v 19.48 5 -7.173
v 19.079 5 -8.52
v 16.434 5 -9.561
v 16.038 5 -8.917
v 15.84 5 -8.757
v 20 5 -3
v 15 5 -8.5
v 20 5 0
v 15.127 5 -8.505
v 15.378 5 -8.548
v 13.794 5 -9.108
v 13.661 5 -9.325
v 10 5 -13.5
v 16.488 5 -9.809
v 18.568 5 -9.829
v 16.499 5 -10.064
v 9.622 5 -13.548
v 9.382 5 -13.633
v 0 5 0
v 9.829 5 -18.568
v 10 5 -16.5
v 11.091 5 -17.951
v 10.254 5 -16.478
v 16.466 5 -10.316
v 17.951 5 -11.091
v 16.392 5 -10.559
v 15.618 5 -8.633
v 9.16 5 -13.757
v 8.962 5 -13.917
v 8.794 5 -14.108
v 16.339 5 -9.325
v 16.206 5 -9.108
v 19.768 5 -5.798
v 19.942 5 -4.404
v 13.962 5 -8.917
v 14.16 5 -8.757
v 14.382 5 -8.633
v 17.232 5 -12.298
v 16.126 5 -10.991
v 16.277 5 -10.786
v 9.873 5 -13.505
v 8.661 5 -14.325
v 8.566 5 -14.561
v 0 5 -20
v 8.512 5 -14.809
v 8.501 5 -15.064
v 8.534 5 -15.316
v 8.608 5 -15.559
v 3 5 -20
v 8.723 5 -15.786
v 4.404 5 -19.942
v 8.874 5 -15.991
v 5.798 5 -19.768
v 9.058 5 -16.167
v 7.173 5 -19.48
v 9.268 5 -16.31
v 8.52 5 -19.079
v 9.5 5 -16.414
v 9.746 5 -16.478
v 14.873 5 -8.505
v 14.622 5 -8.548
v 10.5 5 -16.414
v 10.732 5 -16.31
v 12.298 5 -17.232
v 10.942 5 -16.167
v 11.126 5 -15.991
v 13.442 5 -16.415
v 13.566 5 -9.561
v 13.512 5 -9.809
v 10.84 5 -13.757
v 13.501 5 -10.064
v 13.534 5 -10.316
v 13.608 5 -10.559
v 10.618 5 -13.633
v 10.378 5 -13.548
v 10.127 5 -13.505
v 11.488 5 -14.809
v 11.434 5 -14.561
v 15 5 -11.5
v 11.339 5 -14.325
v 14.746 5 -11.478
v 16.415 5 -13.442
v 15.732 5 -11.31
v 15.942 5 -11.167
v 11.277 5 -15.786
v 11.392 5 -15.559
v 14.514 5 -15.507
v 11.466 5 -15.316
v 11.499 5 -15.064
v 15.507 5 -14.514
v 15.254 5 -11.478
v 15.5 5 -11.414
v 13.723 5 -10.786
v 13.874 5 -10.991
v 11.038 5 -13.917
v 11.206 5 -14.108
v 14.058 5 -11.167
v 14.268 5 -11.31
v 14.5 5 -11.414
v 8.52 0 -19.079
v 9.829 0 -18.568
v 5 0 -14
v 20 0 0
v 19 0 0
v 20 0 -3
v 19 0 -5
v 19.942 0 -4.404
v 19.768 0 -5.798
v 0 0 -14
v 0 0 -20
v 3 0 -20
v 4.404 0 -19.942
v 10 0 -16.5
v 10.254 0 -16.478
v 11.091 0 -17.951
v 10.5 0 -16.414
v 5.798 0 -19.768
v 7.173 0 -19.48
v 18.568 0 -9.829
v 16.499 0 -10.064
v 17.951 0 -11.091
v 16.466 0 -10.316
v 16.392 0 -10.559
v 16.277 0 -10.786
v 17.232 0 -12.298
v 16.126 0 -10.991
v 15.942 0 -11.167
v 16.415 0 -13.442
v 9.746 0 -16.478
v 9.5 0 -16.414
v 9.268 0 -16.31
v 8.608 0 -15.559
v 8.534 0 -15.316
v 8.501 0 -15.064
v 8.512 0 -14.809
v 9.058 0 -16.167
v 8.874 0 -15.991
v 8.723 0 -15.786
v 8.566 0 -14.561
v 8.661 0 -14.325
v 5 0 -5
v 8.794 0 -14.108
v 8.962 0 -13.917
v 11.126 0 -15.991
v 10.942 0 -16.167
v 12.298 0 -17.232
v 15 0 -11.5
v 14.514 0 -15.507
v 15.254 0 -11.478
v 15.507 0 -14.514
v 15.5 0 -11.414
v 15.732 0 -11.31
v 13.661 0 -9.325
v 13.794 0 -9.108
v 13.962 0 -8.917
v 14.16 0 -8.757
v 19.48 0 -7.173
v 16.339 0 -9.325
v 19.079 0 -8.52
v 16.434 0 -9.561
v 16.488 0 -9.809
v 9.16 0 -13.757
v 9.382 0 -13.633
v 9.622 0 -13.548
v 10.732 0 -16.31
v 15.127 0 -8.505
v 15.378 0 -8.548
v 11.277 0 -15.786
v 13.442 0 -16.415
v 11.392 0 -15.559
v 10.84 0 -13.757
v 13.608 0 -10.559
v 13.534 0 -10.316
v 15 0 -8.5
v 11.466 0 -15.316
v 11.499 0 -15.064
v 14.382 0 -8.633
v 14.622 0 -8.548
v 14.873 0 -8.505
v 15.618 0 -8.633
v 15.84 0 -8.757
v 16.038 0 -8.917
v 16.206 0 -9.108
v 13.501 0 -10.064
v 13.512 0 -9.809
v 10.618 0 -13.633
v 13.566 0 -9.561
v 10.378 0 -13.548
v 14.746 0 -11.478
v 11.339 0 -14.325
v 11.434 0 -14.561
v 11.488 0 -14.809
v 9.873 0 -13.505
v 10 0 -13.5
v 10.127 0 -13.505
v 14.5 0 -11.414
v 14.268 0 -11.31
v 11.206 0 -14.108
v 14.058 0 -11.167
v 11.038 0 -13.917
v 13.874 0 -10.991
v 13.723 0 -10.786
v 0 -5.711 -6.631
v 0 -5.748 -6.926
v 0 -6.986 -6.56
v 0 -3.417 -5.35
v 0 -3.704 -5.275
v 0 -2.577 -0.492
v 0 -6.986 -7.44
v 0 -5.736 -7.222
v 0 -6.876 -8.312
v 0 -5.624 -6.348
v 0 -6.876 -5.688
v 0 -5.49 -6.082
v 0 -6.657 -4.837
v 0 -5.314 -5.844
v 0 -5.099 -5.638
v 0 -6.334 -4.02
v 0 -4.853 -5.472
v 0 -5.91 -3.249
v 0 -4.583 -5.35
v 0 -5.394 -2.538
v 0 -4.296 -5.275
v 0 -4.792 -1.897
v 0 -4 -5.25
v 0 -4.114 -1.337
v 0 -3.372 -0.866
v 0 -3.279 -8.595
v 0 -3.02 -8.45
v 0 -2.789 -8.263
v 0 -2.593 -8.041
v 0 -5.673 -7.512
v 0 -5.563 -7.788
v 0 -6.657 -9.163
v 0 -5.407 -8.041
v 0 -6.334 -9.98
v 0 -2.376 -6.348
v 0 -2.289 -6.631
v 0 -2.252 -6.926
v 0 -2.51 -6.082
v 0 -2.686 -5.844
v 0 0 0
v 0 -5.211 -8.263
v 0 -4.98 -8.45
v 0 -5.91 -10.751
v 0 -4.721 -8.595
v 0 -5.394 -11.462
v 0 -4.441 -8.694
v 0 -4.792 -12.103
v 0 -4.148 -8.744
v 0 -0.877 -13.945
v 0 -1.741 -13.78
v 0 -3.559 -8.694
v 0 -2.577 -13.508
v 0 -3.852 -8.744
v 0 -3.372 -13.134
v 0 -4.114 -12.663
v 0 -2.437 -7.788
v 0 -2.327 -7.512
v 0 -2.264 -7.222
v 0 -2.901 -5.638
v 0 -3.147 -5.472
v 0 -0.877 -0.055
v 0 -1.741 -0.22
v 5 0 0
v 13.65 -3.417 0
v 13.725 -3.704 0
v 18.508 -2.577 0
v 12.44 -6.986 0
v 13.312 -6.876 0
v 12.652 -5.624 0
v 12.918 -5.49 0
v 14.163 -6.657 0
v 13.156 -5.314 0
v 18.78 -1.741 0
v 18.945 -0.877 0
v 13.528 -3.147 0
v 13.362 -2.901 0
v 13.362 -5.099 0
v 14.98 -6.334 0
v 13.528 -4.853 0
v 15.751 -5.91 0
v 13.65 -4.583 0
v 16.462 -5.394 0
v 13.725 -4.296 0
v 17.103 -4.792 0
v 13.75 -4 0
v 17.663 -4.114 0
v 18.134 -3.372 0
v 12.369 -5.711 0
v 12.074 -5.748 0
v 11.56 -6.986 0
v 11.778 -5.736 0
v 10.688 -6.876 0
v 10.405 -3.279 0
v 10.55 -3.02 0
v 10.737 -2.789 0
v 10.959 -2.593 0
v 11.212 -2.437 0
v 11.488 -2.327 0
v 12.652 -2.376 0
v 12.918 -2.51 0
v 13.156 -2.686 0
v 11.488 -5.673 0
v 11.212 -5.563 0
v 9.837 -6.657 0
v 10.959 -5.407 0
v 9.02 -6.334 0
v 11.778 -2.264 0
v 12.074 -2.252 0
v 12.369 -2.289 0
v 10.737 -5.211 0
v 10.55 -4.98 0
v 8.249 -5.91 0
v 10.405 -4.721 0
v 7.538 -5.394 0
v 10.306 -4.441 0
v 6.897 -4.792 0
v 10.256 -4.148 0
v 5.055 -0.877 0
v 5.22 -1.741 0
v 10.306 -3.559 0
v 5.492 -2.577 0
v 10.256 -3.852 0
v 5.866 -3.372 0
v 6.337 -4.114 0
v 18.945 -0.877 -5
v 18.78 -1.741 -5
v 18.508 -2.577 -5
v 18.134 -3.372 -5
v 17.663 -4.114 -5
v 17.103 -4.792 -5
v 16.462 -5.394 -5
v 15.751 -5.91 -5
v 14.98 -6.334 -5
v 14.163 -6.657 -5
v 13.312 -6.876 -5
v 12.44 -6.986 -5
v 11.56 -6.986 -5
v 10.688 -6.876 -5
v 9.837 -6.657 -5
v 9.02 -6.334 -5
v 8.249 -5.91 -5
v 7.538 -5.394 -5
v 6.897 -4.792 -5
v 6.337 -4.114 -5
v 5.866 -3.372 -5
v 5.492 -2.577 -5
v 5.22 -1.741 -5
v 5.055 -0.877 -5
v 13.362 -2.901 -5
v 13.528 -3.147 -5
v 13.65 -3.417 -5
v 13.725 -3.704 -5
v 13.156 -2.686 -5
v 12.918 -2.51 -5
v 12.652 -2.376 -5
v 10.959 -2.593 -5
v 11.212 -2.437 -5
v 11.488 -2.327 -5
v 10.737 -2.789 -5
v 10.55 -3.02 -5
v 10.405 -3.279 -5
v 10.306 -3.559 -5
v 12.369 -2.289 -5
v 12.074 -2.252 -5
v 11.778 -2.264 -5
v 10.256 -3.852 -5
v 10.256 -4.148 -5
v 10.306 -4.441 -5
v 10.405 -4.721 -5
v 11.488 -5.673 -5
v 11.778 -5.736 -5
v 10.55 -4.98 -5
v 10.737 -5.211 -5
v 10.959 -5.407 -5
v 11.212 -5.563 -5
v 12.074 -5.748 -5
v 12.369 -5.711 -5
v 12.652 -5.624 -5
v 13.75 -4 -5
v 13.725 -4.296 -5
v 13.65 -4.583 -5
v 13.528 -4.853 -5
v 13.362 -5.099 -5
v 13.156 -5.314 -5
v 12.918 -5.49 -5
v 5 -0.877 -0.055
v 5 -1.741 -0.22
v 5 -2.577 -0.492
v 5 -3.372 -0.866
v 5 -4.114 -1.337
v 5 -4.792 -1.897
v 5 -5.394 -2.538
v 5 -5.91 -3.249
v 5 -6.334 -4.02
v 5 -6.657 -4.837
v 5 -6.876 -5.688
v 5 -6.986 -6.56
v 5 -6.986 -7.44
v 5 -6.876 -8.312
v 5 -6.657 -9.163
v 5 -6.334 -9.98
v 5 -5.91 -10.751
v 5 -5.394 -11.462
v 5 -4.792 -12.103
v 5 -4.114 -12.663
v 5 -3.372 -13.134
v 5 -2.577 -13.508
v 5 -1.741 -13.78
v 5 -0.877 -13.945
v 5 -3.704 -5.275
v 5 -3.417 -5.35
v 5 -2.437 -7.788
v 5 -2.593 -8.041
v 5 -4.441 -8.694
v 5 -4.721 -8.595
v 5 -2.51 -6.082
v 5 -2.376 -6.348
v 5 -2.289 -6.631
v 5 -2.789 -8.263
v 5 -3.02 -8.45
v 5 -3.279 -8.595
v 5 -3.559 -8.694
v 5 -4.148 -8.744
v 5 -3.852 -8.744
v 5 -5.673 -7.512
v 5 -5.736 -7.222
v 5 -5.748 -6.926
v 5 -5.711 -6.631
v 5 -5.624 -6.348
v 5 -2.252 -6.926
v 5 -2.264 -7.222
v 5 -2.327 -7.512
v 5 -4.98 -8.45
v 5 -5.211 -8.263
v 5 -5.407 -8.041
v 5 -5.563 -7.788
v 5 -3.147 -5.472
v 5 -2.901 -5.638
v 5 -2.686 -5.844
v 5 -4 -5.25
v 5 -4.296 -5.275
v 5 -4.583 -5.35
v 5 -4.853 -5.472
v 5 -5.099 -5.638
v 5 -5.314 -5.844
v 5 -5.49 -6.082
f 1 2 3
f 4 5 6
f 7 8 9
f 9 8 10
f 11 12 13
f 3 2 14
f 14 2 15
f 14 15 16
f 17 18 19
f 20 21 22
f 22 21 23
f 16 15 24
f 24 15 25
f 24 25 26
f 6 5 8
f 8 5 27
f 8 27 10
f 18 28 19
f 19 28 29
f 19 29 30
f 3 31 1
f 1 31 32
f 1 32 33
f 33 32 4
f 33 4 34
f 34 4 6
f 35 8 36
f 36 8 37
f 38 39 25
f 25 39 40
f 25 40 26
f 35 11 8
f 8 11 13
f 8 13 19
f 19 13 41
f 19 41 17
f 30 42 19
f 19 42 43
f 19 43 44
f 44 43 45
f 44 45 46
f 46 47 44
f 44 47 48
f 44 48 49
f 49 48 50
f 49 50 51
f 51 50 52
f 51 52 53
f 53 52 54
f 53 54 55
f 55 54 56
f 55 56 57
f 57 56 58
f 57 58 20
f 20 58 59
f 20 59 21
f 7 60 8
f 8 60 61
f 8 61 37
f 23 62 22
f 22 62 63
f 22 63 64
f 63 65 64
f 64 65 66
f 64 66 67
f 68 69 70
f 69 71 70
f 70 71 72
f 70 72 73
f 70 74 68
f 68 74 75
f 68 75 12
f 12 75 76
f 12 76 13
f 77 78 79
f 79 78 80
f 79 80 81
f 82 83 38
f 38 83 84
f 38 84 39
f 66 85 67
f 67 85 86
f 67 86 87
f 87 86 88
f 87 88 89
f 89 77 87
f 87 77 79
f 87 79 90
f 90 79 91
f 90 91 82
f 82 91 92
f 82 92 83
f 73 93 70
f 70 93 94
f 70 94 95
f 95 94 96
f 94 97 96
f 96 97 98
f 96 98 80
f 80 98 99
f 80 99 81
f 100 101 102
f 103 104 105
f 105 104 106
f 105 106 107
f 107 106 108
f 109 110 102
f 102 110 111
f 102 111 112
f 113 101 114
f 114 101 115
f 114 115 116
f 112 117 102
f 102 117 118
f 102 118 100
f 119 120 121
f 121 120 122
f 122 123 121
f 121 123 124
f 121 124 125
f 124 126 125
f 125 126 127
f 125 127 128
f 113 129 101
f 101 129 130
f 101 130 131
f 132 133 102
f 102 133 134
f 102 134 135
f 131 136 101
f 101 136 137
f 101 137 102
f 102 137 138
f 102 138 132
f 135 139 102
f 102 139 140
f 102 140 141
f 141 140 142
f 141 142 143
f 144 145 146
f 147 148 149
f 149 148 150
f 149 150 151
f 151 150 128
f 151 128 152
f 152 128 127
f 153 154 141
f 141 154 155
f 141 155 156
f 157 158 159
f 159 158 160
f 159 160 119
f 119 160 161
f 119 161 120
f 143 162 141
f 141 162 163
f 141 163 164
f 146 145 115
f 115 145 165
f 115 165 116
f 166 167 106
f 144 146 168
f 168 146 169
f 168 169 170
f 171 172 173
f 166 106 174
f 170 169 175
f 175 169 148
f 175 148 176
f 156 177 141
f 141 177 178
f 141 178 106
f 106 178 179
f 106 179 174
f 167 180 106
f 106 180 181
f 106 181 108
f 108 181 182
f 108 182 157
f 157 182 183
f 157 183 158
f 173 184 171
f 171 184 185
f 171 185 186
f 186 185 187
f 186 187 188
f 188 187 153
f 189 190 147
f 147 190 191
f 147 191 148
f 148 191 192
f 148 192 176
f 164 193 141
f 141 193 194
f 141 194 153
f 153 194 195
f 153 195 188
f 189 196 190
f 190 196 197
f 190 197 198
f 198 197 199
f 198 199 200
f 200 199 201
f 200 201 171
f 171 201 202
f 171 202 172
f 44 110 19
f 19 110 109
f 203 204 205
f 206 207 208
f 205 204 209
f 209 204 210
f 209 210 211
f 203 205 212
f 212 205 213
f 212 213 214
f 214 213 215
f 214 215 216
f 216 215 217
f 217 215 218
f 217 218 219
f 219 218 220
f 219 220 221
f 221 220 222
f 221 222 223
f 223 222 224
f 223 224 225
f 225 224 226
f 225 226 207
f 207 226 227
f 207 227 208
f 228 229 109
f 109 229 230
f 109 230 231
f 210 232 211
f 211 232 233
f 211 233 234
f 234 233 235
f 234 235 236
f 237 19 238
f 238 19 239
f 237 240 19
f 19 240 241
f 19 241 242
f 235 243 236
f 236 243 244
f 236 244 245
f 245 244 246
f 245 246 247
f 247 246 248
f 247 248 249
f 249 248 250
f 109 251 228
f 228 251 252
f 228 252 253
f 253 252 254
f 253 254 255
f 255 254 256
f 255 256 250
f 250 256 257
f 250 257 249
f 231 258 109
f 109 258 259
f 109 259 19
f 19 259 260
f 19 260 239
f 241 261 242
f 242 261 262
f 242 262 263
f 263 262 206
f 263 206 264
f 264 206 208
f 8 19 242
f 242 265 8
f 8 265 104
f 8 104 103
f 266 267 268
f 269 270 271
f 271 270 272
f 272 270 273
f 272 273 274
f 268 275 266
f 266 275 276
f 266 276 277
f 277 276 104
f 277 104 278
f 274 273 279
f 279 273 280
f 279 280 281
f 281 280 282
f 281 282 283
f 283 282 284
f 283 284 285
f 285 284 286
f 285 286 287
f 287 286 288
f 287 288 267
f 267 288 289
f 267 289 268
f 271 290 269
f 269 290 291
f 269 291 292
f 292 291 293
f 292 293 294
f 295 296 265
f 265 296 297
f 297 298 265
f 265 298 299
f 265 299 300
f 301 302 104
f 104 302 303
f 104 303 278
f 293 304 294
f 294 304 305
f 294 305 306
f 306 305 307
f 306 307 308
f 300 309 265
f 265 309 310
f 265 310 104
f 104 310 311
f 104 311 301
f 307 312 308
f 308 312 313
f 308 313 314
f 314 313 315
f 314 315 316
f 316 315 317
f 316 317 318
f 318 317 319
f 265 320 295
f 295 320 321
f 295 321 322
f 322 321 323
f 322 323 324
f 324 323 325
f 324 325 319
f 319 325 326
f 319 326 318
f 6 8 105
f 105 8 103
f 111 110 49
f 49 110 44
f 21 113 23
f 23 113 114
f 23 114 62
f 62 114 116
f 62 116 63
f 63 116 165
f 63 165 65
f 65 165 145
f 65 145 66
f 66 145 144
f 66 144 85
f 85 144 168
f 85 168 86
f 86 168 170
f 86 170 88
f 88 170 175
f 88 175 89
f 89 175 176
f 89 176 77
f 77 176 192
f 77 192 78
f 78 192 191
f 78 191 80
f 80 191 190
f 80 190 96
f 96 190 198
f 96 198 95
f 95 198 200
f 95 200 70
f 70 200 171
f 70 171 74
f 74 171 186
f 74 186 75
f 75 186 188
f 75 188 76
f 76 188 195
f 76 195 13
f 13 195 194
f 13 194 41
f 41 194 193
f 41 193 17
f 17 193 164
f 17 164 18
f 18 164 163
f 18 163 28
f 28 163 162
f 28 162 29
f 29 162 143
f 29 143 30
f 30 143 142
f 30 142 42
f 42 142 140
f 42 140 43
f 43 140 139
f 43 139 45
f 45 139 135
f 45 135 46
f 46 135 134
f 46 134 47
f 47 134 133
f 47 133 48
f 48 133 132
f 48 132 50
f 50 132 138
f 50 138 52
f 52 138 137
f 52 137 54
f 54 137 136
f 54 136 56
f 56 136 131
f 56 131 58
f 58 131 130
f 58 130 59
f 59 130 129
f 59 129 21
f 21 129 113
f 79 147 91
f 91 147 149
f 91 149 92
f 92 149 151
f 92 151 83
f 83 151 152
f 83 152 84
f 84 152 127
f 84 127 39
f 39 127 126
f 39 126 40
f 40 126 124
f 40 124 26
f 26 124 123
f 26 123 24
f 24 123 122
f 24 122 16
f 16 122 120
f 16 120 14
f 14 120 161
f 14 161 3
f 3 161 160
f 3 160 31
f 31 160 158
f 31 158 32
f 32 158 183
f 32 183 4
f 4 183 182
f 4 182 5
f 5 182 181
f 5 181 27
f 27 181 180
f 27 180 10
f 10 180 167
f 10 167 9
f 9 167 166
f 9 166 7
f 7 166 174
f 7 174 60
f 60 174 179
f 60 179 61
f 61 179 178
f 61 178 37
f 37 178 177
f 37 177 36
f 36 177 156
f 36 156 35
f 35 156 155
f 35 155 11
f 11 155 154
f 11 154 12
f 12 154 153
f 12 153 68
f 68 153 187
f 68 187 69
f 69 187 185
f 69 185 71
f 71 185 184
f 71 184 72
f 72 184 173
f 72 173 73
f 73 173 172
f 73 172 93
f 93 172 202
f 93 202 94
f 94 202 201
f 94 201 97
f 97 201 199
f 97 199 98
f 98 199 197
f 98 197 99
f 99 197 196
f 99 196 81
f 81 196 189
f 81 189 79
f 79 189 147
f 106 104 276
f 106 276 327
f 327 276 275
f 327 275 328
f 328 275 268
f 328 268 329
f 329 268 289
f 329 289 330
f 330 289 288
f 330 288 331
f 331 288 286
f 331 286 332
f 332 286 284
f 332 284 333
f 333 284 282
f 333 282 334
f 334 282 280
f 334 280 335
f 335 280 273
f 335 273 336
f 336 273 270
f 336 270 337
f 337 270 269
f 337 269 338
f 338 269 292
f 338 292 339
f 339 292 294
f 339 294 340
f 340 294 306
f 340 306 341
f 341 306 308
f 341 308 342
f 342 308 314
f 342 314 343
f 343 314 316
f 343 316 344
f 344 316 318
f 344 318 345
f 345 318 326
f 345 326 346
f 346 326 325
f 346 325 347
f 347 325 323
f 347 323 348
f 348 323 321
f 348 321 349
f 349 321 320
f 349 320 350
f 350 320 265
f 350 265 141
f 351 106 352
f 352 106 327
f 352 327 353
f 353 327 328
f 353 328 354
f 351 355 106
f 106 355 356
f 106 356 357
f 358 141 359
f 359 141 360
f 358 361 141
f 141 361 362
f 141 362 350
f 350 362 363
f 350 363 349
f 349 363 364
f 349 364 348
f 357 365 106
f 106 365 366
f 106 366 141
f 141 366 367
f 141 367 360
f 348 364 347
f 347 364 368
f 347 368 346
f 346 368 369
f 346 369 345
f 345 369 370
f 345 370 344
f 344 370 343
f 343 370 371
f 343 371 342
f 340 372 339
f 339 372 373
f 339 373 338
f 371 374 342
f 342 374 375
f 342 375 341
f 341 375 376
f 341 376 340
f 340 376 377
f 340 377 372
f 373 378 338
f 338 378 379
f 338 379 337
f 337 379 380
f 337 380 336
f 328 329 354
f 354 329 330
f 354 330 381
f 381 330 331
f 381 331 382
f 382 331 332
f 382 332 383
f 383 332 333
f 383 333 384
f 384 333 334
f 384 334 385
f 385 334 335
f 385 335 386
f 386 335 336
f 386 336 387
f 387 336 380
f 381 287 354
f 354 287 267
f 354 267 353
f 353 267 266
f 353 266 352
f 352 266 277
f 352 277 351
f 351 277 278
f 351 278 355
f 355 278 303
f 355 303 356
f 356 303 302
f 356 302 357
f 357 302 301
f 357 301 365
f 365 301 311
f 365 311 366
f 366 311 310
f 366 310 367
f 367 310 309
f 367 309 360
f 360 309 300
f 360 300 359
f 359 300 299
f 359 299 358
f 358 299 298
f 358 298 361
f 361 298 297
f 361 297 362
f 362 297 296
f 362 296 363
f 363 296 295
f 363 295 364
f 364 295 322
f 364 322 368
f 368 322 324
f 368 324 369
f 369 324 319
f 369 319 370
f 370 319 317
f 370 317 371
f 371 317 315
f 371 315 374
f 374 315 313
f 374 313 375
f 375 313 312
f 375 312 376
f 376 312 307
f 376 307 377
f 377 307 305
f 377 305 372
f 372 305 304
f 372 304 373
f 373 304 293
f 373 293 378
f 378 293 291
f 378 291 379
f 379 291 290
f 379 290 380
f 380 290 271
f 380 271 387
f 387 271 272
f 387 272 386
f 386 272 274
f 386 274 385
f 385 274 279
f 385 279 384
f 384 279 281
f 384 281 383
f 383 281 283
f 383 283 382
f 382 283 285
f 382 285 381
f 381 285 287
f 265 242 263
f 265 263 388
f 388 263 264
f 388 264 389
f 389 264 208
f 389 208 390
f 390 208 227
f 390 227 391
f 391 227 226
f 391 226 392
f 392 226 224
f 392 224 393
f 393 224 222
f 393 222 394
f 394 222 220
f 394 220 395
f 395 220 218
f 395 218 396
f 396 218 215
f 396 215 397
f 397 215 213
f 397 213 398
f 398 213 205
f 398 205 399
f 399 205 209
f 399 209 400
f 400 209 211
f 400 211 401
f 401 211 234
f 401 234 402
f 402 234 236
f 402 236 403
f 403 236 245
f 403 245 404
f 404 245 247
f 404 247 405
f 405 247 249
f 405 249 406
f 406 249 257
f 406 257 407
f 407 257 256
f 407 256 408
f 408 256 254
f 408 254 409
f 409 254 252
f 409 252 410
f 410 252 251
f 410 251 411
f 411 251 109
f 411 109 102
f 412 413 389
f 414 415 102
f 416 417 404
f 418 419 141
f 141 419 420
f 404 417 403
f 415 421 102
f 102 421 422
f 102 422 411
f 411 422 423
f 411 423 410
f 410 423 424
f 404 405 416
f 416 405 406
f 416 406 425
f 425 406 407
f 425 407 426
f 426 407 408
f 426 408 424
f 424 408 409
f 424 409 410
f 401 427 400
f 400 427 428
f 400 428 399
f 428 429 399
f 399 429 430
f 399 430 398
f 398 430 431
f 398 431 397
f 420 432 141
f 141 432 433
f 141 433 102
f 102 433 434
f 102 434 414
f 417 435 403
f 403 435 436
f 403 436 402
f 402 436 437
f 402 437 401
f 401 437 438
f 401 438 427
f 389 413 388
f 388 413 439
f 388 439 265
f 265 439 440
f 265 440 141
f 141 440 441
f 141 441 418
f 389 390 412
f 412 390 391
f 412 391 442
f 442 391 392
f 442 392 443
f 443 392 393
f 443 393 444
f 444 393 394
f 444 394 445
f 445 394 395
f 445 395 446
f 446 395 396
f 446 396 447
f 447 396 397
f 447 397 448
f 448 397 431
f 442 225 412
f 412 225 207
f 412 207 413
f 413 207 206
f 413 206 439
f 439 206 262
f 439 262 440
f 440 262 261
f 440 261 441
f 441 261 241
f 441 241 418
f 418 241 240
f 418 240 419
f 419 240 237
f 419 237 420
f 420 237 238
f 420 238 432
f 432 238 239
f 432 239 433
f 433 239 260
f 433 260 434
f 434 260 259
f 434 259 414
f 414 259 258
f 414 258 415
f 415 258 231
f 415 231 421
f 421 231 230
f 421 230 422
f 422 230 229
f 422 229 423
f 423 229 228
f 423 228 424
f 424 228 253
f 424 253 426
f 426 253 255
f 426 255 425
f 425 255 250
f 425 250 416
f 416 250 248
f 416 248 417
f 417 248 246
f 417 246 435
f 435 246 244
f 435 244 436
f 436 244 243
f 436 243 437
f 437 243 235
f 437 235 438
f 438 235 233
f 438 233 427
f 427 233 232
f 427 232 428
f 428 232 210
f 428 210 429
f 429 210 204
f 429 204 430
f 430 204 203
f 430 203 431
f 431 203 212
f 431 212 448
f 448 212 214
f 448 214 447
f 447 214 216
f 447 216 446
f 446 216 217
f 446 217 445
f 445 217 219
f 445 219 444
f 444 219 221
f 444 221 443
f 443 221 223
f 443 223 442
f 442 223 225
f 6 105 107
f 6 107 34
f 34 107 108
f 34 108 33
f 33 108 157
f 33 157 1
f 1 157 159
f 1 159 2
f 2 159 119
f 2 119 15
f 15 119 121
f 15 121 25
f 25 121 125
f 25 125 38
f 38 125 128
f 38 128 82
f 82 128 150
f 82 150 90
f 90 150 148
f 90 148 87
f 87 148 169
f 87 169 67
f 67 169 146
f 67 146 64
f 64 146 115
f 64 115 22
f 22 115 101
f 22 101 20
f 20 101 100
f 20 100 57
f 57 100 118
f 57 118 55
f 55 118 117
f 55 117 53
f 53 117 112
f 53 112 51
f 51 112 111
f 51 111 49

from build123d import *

# Parameters (mm, degrees)
SKETCH1_W           = 20
SKETCH1_H           = 20
SKETCH1_R           = 1.5
BOSS_EXTRUDE1_DEPTH = 5
SKETCH2_R           = 1.75
BOSS_EXTRUDE2_DEPTH = 5
SKETCH3_R           = 1.75
BOSS_EXTRUDE3_DEPTH = 5
FILLET1_R           = 17


with BuildPart() as part:
    # Sketch1 → Boss-Extrude1 (new body)
    with BuildSketch(Plane(origin=(0, 0, 0), x_dir=(1, 0, 0), z_dir=(0, 1, 0))):
        with Locations((10, 10)):
            Rectangle(SKETCH1_W, SKETCH1_H)
        with Locations(Location((10, 15, 0), (0, 0, 270))):
            Circle(SKETCH1_R, mode=Mode.SUBTRACT)
        with Locations(Location((15, 10, 0), (0, 0, 270))):
            Circle(SKETCH1_R, mode=Mode.SUBTRACT)
    extrude(amount=BOSS_EXTRUDE1_DEPTH)

    # Sketch2 → Boss-Extrude2 (add)
    with BuildSketch(Plane.XY):
        with BuildLine():
            Line((19, 0), (5, 0))
            ThreePointArc((5, 0), (12, -7), (19, 0))
        make_face()
        with Locations((12, -4)):
            Circle(SKETCH2_R, mode=Mode.SUBTRACT)
    extrude(amount=-BOSS_EXTRUDE2_DEPTH)

    # Sketch3 → Boss-Extrude3 (add)
    with BuildSketch(Plane.ZY):
        with BuildLine():
            Line((0, 0), (-14, 0))
            ThreePointArc((-14, 0), (-7, -7), (0, 0))
        make_face()
        with Locations((-7, -4)):
            Circle(SKETCH3_R, mode=Mode.SUBTRACT)
    extrude(amount=-BOSS_EXTRUDE3_DEPTH)

    # Fillet1
    fillet1_edges = [part.edges().sort_by_distance(p)[0] for p in [
        (20, 2.5, -20),
    ]]
    fillet(fillet1_edges, radius=FILLET1_R)


solid = part.part
